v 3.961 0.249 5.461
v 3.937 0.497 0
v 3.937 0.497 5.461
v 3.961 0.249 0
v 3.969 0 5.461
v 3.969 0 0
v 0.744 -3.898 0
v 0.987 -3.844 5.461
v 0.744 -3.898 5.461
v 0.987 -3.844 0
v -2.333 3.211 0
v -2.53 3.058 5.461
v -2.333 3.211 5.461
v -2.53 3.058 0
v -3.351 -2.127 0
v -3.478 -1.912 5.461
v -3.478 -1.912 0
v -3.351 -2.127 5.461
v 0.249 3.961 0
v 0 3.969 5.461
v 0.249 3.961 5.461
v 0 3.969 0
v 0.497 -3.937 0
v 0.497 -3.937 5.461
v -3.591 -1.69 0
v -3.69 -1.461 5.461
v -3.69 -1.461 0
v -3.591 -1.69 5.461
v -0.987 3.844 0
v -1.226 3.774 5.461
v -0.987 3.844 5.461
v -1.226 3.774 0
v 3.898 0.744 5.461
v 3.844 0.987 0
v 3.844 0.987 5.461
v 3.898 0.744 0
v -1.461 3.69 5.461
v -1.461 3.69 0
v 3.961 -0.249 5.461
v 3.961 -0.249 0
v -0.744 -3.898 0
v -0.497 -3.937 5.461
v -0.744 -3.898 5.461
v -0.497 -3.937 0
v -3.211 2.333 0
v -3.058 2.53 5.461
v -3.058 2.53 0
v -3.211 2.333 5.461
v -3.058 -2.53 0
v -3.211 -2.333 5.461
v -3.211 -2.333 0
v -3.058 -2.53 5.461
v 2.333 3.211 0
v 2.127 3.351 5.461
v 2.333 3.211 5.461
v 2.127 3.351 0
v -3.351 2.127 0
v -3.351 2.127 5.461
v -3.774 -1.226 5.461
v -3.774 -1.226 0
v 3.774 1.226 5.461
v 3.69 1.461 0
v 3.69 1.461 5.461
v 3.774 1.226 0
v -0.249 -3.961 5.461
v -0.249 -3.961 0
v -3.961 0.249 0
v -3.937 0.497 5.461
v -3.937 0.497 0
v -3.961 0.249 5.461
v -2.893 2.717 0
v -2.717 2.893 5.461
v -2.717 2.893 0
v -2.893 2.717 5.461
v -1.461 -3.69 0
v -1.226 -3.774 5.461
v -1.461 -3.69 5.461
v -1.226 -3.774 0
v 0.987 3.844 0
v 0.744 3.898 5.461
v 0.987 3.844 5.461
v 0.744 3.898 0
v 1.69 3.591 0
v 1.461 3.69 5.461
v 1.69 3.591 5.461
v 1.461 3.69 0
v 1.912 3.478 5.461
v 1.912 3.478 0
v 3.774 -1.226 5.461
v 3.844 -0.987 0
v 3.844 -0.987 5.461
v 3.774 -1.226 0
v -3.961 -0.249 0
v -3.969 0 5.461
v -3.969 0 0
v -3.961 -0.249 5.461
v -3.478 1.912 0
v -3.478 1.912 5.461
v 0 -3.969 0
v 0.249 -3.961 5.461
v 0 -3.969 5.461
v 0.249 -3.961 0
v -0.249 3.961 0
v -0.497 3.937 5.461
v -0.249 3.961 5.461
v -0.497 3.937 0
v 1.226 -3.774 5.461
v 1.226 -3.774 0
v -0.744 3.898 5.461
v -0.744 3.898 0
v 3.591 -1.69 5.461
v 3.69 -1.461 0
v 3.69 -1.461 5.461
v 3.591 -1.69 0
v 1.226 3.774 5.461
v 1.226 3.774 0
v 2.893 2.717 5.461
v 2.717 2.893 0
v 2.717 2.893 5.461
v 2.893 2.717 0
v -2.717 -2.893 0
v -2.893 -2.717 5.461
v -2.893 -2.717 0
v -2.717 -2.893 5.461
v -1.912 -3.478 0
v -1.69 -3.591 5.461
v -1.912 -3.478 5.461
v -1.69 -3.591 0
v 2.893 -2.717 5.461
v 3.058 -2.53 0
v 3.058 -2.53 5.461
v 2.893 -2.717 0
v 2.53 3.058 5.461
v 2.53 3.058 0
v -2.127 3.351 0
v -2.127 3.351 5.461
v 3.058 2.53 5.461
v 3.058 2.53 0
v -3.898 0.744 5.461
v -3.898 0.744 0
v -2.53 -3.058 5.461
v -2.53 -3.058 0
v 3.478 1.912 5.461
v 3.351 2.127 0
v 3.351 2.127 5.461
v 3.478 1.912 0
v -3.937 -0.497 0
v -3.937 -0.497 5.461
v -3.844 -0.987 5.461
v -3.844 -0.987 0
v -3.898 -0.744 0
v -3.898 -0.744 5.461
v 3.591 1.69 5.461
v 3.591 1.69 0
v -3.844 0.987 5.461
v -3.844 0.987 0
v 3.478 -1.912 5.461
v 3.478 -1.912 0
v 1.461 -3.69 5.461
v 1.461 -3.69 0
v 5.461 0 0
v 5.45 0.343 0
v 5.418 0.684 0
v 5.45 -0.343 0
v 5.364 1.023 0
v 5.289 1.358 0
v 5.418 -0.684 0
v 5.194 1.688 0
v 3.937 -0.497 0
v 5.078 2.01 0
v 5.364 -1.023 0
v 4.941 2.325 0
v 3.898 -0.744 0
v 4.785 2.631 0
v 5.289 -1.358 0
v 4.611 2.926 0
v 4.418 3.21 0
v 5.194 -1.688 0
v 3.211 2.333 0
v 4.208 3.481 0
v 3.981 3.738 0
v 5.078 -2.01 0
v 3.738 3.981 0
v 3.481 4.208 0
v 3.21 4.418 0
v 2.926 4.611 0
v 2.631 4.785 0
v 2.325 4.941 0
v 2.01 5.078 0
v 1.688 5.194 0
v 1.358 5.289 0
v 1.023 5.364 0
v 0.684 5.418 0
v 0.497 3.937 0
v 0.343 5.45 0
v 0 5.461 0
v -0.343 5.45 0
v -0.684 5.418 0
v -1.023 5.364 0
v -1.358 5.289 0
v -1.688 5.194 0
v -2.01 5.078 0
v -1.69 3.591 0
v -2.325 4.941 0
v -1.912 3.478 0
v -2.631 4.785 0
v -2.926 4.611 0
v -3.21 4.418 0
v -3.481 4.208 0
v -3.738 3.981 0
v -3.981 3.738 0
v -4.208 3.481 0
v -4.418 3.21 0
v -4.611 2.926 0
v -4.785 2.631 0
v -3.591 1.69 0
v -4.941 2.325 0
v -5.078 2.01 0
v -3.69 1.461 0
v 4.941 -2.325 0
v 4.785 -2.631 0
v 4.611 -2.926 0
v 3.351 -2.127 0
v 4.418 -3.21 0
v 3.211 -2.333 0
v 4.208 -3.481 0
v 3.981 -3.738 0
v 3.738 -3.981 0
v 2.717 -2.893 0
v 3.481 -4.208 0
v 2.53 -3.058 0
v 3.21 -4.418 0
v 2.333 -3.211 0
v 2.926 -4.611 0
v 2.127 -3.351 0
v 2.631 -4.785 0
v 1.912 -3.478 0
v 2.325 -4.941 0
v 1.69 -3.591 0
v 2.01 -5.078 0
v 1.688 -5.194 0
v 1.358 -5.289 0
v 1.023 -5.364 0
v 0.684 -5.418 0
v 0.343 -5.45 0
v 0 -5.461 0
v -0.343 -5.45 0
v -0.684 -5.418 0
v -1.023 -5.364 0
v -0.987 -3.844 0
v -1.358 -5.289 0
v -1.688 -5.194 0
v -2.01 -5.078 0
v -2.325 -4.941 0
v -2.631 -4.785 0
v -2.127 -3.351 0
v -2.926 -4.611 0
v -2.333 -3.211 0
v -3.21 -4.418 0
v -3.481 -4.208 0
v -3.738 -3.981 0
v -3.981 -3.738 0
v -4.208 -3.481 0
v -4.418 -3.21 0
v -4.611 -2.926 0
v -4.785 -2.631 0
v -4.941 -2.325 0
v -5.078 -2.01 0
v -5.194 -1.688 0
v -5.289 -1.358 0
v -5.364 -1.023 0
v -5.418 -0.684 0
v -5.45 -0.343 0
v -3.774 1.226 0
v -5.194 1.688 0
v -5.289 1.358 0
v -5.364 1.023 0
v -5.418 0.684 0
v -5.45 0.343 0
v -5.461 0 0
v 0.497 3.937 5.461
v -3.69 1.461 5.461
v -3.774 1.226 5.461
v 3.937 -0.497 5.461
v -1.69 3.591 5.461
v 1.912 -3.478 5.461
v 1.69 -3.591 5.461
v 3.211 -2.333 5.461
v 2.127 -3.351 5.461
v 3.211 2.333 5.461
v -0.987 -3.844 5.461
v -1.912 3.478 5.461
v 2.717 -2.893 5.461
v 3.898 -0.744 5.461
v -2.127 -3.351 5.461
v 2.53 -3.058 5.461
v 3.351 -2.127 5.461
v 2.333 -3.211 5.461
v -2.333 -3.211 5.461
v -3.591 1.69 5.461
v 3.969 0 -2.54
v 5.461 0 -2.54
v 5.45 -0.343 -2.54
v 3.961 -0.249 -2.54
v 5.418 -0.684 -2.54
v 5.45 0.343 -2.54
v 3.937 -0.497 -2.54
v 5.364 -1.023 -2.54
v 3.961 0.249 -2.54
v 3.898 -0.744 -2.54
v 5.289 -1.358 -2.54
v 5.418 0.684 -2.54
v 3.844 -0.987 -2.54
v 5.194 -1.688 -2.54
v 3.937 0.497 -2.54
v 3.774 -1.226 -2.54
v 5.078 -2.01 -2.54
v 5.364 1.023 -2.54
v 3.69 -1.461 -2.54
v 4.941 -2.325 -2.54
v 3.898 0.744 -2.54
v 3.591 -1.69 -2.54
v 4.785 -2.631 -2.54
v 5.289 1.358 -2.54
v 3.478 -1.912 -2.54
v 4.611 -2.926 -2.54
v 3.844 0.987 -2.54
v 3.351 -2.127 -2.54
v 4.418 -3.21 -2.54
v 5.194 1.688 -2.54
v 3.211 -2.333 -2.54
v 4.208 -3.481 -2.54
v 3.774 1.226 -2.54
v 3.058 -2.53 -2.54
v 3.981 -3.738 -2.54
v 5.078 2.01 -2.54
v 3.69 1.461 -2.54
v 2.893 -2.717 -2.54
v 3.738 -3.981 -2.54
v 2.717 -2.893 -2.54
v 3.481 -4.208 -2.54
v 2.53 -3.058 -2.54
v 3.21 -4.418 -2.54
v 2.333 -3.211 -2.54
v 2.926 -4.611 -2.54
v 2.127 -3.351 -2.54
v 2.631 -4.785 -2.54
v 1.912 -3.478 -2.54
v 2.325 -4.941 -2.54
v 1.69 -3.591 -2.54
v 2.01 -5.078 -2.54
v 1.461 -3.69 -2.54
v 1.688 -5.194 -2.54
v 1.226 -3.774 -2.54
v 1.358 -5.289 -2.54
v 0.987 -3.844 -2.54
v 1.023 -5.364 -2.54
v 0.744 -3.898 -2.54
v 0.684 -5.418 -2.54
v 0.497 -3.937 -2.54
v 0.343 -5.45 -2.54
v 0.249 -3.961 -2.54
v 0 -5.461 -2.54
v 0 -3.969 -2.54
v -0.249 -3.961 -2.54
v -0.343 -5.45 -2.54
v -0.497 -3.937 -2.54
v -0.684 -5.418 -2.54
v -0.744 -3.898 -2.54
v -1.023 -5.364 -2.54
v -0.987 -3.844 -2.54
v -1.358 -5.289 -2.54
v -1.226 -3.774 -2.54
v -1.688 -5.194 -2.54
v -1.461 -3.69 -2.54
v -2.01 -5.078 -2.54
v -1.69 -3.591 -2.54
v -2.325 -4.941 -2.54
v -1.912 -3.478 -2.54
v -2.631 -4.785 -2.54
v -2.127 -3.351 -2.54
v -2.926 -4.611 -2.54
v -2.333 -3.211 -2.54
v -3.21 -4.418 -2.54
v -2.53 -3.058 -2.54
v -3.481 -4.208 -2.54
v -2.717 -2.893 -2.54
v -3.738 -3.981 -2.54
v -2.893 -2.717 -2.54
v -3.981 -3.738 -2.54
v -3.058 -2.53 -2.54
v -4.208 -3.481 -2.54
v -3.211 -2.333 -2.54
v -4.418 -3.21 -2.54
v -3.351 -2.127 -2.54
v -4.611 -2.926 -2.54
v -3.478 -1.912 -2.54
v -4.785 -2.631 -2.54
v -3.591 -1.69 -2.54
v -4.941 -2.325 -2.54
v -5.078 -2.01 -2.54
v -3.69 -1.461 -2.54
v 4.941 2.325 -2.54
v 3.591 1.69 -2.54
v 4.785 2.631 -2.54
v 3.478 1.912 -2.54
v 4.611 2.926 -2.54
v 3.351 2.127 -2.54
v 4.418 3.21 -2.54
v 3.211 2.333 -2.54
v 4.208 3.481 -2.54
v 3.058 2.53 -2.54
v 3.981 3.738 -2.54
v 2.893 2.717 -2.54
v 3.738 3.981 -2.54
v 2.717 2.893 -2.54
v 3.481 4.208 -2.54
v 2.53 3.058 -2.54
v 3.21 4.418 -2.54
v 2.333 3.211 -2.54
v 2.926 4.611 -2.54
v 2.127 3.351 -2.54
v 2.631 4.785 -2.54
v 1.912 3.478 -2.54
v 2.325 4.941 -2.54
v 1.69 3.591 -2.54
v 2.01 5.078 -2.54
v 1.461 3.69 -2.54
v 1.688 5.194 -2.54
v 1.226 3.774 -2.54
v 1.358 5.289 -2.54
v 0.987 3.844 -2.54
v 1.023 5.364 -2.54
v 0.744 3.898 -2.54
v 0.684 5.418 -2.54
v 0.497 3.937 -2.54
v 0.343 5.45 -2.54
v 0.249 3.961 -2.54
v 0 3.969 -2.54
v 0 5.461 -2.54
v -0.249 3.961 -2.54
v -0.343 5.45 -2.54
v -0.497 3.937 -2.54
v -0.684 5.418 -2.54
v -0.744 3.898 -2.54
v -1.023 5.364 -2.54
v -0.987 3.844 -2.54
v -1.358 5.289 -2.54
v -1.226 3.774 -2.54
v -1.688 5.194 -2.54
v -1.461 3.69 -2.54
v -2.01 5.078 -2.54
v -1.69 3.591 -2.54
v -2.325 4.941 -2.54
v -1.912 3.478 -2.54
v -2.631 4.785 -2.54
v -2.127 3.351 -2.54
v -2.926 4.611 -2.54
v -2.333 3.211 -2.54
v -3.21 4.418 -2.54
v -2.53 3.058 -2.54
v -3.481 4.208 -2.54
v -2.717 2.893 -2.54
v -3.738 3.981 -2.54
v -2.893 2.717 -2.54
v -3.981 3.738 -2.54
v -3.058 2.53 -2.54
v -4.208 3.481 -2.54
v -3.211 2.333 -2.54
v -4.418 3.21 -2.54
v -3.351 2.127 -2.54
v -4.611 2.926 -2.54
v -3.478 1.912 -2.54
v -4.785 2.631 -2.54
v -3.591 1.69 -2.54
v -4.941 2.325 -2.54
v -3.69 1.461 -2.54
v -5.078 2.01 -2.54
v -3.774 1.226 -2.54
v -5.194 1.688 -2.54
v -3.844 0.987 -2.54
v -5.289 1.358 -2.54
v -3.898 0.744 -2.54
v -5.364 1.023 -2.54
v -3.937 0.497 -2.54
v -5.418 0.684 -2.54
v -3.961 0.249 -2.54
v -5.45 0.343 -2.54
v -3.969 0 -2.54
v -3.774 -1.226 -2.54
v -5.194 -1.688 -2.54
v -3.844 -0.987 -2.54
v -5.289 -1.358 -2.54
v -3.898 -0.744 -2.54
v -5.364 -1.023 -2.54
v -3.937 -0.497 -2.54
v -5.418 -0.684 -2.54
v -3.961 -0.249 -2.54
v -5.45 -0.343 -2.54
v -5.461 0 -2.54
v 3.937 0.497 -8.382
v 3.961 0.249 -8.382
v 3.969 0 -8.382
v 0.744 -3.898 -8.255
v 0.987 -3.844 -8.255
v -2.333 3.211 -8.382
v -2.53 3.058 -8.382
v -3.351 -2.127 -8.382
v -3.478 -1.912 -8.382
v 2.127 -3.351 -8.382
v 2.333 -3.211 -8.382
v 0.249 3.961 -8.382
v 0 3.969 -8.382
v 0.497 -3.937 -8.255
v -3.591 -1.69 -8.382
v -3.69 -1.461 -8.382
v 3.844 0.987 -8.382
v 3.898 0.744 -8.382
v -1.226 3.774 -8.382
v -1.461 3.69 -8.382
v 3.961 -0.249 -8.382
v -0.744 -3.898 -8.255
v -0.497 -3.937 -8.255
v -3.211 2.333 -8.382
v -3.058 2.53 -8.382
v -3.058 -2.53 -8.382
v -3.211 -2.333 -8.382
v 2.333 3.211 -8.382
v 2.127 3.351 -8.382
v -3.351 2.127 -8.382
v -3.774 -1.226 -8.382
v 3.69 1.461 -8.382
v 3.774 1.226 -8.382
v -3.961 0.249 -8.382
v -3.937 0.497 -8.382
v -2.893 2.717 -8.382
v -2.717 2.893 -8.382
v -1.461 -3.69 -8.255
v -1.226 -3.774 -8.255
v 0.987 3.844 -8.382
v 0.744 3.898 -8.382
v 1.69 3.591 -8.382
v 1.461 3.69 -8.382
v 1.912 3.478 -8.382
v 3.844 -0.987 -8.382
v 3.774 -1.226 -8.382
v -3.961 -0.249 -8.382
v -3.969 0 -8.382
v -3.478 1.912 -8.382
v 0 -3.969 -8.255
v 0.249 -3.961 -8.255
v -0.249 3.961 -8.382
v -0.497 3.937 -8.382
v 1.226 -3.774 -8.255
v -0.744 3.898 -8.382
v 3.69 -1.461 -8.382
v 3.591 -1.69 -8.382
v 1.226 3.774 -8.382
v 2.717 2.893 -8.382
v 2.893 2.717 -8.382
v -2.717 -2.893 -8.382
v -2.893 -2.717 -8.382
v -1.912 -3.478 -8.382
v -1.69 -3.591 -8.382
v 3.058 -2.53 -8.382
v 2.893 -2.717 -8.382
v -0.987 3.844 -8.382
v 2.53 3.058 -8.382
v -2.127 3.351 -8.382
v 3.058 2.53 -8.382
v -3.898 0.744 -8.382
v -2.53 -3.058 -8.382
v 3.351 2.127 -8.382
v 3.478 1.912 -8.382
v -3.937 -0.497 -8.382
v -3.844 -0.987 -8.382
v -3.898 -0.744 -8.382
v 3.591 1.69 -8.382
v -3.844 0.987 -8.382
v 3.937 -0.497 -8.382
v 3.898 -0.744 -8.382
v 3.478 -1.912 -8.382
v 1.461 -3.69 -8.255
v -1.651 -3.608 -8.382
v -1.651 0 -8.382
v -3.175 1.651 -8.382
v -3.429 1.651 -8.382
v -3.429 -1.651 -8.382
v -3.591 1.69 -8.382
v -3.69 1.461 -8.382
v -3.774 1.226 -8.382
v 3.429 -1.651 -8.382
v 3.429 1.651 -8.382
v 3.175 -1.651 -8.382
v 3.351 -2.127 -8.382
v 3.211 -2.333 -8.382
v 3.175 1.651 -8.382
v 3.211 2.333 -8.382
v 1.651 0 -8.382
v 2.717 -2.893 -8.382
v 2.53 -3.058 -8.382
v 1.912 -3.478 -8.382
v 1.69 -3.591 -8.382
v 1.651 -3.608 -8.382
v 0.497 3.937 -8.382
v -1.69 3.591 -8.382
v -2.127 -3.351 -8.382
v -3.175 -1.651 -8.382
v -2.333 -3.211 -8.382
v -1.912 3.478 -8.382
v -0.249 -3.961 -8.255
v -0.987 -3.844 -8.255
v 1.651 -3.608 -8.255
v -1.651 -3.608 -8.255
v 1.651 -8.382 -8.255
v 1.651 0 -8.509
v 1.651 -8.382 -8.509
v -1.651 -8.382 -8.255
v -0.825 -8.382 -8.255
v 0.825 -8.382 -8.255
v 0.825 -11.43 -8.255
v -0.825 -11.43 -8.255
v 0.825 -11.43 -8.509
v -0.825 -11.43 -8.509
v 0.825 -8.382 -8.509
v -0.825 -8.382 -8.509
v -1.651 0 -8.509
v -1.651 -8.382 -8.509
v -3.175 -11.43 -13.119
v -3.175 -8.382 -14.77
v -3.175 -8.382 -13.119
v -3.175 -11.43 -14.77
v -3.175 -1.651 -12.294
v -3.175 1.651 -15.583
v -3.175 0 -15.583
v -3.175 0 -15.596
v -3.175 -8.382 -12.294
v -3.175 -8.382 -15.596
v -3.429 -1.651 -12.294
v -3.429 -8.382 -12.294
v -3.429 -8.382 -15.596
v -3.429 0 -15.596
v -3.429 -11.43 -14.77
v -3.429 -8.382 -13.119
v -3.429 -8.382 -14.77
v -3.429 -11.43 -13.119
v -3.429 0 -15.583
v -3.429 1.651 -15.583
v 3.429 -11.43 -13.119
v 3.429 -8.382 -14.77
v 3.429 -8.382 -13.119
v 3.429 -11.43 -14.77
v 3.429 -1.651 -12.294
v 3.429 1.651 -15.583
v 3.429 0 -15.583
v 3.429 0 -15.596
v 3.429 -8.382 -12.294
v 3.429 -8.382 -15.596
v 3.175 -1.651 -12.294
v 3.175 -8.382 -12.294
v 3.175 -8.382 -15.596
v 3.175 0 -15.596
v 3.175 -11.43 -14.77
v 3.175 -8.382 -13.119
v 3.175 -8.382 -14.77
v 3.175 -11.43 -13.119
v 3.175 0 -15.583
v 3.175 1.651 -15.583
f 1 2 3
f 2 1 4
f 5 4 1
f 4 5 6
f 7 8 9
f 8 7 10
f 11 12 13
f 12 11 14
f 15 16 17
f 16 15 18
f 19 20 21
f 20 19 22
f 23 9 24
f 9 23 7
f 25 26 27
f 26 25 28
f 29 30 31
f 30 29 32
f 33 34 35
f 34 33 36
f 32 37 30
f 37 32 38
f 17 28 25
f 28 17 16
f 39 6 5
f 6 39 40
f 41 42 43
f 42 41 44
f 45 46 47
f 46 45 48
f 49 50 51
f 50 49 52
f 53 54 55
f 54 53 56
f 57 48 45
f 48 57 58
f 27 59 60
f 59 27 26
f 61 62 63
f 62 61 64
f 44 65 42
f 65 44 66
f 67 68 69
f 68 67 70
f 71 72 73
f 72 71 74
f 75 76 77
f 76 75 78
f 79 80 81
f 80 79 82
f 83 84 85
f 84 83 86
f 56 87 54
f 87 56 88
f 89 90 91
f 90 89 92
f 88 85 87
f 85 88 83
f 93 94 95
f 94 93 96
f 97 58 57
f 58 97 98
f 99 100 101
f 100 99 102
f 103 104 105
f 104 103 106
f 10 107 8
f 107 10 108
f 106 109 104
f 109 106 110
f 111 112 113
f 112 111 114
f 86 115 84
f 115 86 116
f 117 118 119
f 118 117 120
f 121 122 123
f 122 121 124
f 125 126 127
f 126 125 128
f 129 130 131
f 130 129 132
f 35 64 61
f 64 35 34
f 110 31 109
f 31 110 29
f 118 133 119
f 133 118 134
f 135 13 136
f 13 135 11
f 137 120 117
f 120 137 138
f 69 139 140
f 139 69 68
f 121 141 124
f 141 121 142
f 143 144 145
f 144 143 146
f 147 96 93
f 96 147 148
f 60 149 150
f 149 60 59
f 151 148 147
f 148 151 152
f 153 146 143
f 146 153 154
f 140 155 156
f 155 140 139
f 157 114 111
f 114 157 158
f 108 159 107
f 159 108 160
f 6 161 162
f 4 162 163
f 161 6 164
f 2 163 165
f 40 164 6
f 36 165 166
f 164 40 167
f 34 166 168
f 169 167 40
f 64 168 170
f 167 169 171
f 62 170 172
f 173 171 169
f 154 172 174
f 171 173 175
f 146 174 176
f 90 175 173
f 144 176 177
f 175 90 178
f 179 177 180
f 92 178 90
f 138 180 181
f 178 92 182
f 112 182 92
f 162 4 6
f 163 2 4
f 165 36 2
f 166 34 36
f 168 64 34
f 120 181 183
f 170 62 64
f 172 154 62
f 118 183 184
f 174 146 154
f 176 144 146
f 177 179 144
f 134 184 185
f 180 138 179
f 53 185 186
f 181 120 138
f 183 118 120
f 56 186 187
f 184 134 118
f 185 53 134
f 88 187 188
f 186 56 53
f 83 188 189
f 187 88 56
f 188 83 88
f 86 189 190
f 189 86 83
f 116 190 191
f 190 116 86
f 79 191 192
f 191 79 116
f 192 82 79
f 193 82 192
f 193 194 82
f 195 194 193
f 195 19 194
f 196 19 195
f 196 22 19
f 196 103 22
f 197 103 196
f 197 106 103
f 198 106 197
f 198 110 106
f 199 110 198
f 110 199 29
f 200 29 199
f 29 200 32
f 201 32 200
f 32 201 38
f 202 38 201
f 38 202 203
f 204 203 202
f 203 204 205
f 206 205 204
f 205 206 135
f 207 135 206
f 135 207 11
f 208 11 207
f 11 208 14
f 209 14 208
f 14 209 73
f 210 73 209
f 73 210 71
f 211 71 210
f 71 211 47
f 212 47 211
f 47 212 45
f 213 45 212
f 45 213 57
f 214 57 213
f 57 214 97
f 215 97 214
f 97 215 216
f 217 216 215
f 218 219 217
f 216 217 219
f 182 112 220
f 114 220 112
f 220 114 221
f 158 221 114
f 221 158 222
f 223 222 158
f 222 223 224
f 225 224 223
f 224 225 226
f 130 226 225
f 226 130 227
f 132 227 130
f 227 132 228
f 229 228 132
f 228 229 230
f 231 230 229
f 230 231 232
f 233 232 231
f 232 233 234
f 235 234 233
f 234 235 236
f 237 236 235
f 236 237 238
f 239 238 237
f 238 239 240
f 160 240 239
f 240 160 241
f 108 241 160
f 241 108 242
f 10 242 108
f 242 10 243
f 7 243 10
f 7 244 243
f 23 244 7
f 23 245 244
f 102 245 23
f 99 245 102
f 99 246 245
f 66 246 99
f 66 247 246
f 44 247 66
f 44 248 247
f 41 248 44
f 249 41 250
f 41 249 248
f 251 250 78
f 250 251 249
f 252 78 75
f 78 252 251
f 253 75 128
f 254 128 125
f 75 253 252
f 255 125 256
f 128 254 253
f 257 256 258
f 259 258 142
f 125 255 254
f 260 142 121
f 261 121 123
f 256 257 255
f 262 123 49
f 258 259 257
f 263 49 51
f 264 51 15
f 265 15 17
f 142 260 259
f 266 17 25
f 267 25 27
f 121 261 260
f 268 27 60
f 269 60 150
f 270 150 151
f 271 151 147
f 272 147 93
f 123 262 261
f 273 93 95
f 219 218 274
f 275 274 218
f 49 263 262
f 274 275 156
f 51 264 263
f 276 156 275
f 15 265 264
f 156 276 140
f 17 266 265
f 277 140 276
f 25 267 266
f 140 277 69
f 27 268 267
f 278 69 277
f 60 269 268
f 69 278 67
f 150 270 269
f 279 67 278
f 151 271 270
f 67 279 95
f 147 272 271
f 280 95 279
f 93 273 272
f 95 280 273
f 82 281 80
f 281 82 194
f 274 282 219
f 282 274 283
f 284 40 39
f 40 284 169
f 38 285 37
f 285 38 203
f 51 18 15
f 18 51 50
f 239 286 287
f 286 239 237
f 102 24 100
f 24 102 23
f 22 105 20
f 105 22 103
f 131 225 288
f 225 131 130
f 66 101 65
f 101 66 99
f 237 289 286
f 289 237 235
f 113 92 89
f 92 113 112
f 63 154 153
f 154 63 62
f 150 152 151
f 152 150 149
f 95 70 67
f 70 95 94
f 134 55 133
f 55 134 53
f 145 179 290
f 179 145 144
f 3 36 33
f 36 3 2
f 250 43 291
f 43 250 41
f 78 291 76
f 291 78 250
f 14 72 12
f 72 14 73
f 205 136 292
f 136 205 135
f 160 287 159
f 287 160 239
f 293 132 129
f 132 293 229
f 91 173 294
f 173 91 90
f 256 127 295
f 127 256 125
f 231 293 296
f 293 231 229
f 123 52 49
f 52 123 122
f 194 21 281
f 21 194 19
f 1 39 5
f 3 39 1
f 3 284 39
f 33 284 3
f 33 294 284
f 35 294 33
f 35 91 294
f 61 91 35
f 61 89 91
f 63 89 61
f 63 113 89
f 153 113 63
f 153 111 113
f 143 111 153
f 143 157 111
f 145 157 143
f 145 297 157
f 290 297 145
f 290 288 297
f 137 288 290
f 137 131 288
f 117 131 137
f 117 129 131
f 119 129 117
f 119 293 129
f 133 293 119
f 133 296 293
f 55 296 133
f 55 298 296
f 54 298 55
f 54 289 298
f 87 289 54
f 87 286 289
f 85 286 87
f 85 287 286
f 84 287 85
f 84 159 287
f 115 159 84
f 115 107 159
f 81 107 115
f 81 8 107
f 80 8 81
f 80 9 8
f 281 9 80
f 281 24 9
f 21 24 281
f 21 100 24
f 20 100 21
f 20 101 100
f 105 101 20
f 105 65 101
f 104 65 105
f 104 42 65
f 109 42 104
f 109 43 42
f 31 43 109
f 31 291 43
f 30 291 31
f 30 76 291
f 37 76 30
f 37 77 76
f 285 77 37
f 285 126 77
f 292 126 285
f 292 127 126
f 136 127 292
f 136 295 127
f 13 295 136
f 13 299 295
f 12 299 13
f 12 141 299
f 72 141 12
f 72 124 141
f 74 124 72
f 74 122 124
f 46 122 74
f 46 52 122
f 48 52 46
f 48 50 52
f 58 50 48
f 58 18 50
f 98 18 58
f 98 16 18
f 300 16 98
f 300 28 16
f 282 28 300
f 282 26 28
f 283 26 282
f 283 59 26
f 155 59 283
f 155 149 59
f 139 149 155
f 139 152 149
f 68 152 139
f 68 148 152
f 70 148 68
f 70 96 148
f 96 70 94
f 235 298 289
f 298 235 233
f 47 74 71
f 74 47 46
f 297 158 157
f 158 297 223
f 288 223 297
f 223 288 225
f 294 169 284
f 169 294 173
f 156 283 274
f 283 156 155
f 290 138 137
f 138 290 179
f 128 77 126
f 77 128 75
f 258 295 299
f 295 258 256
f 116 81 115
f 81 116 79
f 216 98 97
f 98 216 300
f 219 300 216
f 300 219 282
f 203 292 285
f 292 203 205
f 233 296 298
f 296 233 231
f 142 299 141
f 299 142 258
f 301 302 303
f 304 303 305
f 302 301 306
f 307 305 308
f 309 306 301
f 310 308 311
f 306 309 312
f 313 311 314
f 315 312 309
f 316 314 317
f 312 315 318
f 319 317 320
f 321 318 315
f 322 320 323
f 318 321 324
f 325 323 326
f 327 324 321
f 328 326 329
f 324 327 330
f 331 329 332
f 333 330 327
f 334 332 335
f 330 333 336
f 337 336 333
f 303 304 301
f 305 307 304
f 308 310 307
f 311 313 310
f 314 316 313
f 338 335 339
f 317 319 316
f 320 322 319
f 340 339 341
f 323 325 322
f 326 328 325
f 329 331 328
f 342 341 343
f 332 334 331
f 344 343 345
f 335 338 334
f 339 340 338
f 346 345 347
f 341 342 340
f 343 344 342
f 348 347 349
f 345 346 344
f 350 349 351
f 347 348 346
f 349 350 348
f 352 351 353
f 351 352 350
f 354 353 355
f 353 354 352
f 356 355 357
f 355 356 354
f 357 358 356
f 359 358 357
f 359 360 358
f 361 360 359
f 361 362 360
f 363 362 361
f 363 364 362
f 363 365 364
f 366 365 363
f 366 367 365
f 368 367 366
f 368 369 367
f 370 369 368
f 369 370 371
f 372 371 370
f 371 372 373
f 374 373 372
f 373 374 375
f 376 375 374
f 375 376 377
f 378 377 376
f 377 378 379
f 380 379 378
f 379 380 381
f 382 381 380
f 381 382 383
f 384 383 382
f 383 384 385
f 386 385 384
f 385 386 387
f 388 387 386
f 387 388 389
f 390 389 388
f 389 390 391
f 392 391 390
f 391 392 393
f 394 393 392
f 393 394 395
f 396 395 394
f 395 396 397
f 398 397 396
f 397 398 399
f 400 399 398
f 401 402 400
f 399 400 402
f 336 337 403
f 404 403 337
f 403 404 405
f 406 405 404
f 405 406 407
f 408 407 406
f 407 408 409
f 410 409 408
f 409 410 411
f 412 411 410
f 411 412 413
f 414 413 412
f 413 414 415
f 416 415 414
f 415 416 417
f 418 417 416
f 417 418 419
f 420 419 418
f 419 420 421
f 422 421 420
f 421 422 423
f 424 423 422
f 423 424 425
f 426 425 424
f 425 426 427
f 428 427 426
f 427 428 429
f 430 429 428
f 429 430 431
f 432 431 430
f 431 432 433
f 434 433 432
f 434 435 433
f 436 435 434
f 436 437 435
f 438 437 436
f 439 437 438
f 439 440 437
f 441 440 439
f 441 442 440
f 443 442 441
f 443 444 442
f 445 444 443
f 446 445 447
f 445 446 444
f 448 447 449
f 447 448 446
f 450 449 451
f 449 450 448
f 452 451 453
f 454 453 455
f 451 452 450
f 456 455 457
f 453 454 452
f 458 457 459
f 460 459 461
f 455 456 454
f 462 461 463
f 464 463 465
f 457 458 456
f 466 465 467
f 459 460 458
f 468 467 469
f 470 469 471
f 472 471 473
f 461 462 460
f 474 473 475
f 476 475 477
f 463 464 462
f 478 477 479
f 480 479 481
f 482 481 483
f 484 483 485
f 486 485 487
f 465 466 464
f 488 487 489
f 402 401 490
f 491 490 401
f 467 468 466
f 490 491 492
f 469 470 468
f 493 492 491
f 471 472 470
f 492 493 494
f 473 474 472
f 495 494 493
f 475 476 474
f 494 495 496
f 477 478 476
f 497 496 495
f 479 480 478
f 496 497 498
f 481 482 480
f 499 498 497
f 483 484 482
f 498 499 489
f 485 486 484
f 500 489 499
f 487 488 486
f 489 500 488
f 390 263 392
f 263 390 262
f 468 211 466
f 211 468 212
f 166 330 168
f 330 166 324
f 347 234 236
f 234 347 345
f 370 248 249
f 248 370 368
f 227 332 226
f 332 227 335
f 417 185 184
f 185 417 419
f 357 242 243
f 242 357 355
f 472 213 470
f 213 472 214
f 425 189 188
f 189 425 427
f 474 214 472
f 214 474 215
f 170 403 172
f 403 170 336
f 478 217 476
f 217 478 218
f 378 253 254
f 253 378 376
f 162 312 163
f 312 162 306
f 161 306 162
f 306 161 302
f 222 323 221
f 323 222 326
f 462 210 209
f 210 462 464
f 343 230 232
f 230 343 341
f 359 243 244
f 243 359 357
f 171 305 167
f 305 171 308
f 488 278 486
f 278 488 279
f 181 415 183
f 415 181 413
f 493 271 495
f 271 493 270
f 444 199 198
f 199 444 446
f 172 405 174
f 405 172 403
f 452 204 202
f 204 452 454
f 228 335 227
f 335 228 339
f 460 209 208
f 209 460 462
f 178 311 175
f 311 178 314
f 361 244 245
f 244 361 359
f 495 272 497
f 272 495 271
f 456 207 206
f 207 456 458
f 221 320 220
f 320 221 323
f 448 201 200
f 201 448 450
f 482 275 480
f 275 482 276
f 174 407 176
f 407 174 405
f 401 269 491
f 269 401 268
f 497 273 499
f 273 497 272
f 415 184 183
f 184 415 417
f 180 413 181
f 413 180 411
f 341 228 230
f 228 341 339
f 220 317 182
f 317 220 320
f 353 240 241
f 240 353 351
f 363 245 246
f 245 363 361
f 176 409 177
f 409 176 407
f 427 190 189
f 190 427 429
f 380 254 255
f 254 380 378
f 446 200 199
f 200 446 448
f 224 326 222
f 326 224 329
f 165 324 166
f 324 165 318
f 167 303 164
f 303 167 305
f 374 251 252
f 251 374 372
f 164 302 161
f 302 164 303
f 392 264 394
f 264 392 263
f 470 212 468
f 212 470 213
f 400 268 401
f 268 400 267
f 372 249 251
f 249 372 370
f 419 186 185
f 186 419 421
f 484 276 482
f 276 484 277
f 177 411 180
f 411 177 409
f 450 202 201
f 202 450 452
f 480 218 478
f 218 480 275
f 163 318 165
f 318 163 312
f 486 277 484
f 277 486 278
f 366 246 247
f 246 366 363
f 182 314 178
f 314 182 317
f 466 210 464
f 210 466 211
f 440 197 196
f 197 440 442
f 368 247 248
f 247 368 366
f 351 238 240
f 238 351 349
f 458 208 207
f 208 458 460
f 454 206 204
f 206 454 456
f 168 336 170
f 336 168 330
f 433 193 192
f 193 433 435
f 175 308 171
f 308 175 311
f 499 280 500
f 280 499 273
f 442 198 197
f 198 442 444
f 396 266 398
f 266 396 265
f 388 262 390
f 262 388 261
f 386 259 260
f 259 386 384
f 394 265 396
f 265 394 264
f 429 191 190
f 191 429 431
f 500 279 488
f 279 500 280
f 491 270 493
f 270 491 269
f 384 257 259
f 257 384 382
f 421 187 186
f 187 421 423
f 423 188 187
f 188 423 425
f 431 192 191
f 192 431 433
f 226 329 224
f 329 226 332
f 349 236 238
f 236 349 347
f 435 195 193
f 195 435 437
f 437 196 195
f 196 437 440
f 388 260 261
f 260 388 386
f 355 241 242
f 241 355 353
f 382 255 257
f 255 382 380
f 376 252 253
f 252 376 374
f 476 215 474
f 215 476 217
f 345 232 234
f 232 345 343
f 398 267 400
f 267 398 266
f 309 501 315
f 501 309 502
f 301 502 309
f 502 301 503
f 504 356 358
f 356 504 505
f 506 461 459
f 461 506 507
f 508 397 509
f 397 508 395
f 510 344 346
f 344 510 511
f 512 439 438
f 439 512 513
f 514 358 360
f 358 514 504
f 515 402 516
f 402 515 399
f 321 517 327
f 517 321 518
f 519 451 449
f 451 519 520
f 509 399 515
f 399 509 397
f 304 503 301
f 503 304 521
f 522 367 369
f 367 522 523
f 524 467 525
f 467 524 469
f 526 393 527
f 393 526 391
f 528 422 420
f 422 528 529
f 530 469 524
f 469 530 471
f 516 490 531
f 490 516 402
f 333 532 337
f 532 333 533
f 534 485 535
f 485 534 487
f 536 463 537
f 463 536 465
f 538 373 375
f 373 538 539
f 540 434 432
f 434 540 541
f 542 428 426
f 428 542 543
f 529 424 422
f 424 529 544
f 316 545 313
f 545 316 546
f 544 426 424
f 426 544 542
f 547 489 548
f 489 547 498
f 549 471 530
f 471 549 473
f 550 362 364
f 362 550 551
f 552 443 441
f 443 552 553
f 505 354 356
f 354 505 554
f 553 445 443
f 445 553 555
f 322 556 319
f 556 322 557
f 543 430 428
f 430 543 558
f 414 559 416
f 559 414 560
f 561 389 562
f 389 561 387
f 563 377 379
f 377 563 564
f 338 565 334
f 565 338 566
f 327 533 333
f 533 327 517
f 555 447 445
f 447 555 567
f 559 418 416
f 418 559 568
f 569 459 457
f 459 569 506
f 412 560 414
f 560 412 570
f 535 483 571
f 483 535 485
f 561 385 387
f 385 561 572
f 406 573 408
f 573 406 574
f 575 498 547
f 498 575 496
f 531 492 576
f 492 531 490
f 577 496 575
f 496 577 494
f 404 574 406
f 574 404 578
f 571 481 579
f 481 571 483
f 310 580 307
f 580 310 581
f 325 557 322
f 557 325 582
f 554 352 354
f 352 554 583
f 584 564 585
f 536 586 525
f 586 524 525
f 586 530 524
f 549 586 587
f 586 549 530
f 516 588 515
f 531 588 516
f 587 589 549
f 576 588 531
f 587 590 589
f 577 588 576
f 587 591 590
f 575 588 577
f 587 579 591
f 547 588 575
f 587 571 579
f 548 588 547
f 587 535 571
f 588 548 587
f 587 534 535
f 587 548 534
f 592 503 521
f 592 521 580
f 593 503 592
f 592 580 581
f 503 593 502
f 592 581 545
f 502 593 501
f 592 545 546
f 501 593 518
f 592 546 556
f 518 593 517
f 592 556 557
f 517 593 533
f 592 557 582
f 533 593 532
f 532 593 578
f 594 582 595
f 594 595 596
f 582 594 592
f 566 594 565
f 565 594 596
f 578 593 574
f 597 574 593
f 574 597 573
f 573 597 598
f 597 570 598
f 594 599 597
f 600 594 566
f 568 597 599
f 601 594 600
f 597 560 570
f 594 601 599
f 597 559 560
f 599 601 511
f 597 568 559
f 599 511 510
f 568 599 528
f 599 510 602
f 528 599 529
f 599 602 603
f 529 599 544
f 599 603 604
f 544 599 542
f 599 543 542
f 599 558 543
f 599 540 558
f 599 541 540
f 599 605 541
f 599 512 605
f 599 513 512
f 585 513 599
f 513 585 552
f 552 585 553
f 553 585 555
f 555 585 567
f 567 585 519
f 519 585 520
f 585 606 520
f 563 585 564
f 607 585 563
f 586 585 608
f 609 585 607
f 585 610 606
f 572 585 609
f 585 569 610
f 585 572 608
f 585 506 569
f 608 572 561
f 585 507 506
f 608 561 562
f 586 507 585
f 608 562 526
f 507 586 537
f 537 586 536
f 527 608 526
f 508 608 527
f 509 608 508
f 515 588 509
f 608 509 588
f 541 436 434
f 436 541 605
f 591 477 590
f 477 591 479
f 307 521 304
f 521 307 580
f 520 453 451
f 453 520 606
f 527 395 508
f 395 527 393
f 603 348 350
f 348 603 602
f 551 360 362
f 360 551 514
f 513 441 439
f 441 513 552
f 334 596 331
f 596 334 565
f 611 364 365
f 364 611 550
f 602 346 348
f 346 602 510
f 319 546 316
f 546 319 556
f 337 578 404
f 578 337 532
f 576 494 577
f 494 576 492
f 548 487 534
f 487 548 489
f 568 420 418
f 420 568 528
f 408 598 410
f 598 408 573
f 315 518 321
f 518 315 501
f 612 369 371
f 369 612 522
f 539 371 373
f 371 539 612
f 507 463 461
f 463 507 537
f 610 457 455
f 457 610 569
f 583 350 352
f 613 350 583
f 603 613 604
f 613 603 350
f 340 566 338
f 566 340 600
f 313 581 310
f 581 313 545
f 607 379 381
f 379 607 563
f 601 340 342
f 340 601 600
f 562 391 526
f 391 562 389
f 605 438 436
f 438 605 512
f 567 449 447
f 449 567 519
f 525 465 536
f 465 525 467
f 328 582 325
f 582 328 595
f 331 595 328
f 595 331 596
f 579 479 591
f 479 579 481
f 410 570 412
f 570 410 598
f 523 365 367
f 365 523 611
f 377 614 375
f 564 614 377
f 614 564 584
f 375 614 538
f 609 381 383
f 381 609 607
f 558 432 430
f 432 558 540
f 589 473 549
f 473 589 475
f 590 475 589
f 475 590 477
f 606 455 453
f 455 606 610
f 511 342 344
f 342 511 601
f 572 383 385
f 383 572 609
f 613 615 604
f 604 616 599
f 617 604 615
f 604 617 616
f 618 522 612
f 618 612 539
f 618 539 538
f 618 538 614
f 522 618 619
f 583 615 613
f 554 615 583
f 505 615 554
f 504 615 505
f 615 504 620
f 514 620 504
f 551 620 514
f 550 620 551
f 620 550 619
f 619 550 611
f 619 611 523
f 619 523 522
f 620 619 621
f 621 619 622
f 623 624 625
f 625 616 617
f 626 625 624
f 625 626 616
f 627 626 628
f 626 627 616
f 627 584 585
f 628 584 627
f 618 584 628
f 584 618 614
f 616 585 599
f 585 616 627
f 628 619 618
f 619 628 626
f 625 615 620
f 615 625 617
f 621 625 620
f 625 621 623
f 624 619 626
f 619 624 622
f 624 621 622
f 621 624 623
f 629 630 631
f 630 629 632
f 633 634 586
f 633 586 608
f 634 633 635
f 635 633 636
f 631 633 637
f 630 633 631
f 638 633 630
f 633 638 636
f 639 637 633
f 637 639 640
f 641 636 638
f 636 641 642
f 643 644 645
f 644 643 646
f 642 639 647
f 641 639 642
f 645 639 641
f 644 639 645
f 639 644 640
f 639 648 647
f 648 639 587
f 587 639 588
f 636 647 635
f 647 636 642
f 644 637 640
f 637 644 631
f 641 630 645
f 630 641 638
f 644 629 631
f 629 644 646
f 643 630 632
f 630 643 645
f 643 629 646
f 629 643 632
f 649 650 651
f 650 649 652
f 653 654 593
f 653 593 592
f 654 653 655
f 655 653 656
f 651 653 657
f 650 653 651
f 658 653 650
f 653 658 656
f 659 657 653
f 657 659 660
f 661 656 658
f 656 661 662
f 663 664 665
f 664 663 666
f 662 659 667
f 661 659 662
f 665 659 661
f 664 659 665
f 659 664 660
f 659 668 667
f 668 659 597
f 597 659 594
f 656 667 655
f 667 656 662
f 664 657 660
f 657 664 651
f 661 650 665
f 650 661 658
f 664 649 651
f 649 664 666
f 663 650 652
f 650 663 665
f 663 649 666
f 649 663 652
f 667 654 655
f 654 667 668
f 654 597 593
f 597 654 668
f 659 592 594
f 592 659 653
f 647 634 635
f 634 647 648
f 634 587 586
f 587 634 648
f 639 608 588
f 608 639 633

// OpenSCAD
$fn=100;
scale(25.4){
cylinder(h=0.215, d=5/16);
translate([0,0,-0.1])
    cylinder(h=0.1, d=0.43);
translate([0,0,-0.33])
    cylinder(h=0.33, d=5/16);
translate([0,-0.165,-0.33])
    cube([0.13, 0.33, 0.01], center=true);
translate([0,-0.225,-0.33])
    cube([0.065, 0.45, 0.01], center=true);
    
{translate([-0.13,-0.165,-0.549])
    cube([0.01, 0.33, 0.13], center=true);
translate([-0.13,-0.225,-0.549])
    cube([0.01, 0.45, 0.065], center=true);
}


{translate([0.13,-0.165,-0.549])
    cube([0.01, 0.33, 0.13], center=true);
translate([0.13,-0.225,-0.549])
    cube([0.01, 0.45, 0.065], center=true);
}

translate([0.13, 0, -0.339])
cube([0.01, 0.13, 0.549], center=true);

translate([-0.13, 0, -0.339])
cube([0.01, 0.13, 0.549], center=true);

}
